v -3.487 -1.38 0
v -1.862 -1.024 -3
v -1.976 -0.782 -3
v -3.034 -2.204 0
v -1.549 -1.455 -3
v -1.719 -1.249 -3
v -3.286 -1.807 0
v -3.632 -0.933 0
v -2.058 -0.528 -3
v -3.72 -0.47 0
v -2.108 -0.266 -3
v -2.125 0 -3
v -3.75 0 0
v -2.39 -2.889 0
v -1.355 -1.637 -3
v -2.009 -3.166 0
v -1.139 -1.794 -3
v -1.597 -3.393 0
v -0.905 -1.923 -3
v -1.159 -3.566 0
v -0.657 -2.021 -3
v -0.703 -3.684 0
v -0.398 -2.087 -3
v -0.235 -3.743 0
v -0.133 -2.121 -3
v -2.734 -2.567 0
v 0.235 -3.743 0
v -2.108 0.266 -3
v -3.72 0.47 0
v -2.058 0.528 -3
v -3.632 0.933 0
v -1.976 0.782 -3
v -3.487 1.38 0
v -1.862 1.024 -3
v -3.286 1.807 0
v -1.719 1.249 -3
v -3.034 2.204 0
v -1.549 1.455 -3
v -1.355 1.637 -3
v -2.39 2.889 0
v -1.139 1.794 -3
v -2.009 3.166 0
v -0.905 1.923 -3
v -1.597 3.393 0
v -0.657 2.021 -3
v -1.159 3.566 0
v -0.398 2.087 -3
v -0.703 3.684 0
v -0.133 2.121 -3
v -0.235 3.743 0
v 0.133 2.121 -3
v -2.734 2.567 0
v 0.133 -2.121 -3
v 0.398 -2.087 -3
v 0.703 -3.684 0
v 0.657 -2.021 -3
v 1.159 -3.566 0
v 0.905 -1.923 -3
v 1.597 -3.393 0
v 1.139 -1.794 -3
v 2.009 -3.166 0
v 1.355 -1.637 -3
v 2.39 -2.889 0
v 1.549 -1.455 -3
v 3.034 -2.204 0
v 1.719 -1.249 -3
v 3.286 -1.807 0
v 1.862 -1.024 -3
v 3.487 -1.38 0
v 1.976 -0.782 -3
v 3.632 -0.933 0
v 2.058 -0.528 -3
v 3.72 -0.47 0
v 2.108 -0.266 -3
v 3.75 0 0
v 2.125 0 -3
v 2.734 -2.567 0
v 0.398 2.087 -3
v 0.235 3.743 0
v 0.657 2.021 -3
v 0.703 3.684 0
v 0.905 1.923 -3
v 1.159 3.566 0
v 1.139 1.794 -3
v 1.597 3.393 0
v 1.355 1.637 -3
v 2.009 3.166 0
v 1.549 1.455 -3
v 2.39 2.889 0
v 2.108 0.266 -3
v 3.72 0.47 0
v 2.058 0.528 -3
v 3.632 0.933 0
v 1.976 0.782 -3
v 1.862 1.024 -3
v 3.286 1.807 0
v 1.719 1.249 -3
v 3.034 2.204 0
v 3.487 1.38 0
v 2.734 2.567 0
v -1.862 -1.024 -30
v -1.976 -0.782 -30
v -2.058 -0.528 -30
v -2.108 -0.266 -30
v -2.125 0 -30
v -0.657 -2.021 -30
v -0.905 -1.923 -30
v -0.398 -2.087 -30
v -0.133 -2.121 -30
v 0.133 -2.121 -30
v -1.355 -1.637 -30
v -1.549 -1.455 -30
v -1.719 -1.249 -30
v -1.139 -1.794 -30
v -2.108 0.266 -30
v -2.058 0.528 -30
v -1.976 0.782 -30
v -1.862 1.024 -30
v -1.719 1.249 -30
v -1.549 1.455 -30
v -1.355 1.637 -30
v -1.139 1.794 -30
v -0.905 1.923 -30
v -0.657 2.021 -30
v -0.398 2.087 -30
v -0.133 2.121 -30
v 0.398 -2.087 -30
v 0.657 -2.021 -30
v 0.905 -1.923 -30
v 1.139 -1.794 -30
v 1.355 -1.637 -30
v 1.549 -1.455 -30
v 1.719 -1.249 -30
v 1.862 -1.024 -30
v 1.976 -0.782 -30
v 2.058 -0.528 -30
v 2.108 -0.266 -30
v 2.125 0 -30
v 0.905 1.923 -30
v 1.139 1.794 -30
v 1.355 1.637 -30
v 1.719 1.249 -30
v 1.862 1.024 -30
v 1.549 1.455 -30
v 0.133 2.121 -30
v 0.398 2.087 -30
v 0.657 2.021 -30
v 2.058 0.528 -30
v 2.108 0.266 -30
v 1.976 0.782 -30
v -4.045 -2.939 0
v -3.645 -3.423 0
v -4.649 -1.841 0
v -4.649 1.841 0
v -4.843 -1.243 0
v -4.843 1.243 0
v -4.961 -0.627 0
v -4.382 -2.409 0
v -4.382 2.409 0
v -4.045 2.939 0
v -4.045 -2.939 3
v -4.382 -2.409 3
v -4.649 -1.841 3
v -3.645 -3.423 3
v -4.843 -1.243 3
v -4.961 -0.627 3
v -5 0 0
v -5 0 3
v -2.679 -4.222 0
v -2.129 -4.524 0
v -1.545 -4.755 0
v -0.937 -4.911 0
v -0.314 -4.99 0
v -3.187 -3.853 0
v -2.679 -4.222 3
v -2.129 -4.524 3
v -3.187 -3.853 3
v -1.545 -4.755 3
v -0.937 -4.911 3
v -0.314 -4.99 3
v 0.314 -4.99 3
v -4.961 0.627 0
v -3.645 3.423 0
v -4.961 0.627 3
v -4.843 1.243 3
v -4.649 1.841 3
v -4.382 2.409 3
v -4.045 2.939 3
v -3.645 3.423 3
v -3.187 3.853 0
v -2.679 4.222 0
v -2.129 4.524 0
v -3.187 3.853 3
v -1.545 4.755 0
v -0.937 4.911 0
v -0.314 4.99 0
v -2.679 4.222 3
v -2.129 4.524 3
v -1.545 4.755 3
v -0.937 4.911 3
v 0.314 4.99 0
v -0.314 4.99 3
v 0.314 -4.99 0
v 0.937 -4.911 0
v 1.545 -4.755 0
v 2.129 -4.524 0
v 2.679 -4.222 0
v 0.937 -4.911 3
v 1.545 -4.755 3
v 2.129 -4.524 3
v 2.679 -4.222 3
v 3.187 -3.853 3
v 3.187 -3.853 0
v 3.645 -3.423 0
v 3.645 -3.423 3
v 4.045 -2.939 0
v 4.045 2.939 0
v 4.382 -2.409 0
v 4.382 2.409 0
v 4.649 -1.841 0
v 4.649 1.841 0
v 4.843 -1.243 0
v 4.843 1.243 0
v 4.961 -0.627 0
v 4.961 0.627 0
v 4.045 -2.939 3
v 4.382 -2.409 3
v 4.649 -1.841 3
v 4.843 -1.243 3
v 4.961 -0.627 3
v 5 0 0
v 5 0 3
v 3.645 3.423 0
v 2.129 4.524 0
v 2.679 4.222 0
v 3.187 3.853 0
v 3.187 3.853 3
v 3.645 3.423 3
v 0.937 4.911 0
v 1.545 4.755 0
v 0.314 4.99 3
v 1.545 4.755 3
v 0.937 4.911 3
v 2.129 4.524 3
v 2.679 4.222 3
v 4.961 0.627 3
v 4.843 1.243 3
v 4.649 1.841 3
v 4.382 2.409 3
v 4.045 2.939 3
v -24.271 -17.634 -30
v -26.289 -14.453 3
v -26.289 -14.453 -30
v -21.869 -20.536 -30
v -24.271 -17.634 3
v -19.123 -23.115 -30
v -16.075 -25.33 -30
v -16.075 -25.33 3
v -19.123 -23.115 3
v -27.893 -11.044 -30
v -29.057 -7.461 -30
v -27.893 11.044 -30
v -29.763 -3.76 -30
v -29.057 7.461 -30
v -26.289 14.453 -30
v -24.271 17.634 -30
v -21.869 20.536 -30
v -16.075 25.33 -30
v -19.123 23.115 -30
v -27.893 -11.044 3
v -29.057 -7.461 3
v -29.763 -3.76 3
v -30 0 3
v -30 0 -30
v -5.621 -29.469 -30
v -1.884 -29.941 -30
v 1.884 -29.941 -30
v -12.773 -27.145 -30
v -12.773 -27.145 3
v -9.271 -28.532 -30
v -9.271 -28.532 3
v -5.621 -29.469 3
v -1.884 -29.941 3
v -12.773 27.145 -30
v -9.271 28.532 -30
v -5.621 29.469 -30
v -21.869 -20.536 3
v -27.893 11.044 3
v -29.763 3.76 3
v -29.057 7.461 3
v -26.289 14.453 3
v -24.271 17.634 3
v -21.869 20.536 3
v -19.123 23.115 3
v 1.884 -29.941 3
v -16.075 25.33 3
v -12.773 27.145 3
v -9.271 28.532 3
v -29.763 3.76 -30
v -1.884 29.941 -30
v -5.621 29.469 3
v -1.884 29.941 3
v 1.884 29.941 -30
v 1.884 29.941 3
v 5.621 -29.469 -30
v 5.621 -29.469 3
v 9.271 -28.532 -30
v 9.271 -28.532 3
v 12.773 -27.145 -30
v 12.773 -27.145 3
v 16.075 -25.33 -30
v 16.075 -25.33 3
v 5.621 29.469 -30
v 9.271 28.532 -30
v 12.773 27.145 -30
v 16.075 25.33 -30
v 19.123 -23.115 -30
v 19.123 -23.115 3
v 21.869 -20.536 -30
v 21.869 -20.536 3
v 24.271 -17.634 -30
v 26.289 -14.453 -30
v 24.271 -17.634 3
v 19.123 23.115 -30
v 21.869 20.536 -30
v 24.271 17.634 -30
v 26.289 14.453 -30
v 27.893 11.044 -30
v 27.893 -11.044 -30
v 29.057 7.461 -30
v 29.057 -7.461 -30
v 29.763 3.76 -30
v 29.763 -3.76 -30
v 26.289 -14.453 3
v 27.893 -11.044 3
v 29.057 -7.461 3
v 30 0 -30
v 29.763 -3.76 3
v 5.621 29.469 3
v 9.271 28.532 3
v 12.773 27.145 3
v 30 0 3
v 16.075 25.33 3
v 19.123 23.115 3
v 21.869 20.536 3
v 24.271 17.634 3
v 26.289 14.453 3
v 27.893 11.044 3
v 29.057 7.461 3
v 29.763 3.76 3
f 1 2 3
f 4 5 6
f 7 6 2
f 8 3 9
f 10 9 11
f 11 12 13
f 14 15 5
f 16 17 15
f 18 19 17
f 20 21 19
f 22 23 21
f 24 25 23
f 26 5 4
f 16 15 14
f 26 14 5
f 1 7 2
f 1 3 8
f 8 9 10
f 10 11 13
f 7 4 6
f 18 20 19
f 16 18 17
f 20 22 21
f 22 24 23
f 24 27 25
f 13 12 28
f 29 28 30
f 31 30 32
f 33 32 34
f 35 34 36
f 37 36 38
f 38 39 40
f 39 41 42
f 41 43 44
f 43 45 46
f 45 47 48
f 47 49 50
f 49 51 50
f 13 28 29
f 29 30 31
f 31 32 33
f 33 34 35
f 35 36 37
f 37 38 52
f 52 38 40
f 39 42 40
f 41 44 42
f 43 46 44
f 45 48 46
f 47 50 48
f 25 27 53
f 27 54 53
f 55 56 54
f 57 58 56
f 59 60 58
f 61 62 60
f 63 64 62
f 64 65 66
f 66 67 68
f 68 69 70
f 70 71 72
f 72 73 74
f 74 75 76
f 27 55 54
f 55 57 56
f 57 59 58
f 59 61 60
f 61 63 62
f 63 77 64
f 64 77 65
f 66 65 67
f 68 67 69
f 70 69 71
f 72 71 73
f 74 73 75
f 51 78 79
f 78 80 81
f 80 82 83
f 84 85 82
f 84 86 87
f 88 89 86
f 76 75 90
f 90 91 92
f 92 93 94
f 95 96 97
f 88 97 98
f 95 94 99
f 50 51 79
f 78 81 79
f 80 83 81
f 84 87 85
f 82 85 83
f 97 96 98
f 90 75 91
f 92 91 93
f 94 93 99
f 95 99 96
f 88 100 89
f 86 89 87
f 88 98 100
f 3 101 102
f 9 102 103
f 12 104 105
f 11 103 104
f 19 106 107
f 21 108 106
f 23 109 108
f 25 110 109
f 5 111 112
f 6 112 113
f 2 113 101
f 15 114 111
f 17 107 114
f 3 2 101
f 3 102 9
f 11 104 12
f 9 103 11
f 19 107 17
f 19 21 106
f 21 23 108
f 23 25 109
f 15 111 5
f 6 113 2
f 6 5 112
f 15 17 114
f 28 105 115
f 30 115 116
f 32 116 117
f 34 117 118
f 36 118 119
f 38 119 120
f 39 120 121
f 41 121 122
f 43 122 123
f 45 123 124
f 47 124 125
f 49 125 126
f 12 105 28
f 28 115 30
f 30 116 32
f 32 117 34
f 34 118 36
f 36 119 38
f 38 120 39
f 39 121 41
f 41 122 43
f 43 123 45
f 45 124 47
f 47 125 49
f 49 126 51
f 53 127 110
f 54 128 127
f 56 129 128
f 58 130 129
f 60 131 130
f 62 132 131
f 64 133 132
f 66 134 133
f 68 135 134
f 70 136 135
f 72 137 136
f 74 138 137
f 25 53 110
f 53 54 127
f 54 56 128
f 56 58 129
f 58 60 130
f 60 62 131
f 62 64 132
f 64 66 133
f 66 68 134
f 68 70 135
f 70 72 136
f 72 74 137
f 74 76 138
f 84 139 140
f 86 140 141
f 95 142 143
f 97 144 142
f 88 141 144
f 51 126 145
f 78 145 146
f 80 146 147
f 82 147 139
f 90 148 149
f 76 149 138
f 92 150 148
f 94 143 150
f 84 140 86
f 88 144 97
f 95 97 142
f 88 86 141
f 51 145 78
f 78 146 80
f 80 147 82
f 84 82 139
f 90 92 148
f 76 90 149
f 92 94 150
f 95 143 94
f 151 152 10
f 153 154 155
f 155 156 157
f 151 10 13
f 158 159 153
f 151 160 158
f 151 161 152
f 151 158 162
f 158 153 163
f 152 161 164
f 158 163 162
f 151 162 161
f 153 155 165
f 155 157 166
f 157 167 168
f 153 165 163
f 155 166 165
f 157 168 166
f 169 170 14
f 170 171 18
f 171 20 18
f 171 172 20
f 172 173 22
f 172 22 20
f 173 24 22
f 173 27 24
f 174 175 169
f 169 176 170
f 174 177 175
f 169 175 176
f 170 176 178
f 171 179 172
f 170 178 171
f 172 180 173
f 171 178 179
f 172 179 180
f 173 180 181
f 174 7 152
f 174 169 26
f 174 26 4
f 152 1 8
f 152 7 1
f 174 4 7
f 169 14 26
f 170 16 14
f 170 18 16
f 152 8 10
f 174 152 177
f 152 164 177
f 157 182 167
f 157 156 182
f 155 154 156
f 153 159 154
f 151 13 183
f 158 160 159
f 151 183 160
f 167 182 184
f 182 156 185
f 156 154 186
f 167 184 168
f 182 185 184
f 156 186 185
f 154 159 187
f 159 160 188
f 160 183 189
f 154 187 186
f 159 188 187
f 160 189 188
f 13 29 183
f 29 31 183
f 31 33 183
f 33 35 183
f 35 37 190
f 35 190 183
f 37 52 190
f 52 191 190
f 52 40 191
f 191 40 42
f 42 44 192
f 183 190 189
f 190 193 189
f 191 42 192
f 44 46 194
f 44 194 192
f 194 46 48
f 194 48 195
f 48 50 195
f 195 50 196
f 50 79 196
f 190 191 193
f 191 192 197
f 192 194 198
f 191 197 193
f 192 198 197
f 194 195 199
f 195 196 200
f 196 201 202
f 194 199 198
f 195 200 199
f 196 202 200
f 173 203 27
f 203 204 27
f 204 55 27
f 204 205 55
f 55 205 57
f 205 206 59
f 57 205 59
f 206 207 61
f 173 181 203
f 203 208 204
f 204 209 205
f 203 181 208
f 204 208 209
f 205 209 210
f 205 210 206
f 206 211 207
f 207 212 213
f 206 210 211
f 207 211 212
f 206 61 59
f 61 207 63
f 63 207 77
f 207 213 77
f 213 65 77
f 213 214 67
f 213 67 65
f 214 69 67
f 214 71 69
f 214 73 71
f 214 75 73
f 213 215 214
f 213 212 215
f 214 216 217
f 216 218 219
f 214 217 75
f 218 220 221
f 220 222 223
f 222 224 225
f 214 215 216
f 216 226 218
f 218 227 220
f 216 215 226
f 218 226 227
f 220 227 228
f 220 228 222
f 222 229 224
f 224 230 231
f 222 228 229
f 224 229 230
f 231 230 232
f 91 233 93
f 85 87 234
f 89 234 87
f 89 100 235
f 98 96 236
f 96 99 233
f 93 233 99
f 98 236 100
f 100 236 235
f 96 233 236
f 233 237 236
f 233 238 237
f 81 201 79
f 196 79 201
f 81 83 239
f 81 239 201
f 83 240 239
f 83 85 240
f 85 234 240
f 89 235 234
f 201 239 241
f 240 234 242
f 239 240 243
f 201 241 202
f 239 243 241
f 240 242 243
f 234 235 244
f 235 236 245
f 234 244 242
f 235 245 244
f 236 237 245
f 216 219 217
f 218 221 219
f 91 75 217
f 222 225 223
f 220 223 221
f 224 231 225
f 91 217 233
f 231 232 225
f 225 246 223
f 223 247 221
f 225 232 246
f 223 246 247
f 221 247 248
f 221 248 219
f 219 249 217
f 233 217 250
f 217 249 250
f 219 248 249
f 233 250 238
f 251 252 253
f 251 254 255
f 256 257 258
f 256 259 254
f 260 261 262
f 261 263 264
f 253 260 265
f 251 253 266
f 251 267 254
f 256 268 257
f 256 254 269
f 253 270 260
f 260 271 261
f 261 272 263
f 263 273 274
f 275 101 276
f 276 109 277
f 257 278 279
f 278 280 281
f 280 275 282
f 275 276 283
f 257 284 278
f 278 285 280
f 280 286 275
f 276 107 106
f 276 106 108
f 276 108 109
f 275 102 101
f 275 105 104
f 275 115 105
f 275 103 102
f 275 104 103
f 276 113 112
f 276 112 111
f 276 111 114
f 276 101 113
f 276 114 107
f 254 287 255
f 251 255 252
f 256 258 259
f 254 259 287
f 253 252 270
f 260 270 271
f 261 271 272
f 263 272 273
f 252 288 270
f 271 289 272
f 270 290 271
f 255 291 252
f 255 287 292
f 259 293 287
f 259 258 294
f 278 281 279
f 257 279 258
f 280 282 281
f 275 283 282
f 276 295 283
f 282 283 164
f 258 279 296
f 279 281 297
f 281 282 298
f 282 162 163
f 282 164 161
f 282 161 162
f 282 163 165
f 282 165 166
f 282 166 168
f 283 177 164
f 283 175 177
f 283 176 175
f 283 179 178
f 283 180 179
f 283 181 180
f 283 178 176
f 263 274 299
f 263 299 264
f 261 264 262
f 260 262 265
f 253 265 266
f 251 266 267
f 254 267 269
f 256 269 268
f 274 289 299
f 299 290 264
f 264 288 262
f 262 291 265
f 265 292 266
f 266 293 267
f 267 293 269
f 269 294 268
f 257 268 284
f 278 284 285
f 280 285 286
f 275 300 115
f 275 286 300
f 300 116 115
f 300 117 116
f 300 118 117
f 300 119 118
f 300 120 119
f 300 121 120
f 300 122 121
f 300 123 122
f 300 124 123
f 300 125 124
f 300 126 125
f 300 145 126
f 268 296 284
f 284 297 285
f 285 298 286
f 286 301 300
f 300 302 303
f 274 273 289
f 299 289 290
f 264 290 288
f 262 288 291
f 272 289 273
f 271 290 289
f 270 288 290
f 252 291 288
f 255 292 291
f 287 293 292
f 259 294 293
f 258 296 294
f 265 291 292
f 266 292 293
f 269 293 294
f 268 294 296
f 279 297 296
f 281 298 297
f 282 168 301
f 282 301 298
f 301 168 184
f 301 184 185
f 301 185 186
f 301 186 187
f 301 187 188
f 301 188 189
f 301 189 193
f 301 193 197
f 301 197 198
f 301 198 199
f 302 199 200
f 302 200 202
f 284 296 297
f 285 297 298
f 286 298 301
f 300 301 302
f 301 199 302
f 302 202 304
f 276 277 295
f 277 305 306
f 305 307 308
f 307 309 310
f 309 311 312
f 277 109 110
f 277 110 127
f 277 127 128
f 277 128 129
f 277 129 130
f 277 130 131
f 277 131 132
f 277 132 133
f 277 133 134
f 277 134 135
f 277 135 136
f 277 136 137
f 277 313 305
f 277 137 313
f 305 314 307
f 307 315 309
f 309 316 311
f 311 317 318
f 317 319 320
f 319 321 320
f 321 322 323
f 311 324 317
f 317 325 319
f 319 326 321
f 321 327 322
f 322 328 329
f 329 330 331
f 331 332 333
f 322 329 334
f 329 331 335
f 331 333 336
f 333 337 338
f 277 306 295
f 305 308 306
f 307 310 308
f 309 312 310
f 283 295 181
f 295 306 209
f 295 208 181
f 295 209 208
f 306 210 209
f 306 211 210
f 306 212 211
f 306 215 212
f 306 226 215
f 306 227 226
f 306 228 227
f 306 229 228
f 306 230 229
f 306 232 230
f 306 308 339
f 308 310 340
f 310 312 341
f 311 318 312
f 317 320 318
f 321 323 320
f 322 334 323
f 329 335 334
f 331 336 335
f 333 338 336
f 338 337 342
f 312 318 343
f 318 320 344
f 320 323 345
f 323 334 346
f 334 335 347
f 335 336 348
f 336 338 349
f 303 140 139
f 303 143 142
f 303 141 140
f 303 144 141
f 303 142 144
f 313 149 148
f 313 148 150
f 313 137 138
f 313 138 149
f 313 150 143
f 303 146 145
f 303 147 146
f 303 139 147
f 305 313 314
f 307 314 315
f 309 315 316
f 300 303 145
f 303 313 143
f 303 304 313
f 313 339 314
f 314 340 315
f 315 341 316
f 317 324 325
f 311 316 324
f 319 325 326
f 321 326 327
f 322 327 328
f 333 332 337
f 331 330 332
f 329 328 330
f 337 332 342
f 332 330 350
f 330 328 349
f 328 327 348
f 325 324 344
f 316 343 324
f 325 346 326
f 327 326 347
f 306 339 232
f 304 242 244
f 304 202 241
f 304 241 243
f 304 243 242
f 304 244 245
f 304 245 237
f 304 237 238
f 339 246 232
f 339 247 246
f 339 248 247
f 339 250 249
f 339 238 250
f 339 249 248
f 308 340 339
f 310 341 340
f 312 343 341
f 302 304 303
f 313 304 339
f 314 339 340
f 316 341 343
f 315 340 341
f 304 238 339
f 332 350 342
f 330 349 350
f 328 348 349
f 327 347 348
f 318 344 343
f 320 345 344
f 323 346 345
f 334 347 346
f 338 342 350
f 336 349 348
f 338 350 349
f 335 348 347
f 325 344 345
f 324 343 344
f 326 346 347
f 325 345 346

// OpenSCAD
$fn = 50;

difference() {
	union() {
		translate(v = [0, 0, -30.0]) {
			cylinder(h = 33, r = 30.0);
		}
	}
	union() {
		translate(v = [0, 0, 0]) {
			rotate(a = [0, 0, 0]) {
				difference() {
					union() {
						translate(v = [0, 0, -33.0]) {
							cylinder(h = 33, r = 2.0);
						}
						translate(v = [0, 0, -3]) {
							cylinder(h = 3, r1 = 2.125, r2 = 3.75);
						}
						translate(v = [0, 0, -33.0]) {
							cylinder(h = 33, r = 2.125);
						}
						translate(v = [0, 0, -33.0]) {
							cylinder(h = 33, r = 2.0);
						}
					}
					union();
				}
			}
		}
		#cylinder(h = 3, r = 5.0);
	}
}
